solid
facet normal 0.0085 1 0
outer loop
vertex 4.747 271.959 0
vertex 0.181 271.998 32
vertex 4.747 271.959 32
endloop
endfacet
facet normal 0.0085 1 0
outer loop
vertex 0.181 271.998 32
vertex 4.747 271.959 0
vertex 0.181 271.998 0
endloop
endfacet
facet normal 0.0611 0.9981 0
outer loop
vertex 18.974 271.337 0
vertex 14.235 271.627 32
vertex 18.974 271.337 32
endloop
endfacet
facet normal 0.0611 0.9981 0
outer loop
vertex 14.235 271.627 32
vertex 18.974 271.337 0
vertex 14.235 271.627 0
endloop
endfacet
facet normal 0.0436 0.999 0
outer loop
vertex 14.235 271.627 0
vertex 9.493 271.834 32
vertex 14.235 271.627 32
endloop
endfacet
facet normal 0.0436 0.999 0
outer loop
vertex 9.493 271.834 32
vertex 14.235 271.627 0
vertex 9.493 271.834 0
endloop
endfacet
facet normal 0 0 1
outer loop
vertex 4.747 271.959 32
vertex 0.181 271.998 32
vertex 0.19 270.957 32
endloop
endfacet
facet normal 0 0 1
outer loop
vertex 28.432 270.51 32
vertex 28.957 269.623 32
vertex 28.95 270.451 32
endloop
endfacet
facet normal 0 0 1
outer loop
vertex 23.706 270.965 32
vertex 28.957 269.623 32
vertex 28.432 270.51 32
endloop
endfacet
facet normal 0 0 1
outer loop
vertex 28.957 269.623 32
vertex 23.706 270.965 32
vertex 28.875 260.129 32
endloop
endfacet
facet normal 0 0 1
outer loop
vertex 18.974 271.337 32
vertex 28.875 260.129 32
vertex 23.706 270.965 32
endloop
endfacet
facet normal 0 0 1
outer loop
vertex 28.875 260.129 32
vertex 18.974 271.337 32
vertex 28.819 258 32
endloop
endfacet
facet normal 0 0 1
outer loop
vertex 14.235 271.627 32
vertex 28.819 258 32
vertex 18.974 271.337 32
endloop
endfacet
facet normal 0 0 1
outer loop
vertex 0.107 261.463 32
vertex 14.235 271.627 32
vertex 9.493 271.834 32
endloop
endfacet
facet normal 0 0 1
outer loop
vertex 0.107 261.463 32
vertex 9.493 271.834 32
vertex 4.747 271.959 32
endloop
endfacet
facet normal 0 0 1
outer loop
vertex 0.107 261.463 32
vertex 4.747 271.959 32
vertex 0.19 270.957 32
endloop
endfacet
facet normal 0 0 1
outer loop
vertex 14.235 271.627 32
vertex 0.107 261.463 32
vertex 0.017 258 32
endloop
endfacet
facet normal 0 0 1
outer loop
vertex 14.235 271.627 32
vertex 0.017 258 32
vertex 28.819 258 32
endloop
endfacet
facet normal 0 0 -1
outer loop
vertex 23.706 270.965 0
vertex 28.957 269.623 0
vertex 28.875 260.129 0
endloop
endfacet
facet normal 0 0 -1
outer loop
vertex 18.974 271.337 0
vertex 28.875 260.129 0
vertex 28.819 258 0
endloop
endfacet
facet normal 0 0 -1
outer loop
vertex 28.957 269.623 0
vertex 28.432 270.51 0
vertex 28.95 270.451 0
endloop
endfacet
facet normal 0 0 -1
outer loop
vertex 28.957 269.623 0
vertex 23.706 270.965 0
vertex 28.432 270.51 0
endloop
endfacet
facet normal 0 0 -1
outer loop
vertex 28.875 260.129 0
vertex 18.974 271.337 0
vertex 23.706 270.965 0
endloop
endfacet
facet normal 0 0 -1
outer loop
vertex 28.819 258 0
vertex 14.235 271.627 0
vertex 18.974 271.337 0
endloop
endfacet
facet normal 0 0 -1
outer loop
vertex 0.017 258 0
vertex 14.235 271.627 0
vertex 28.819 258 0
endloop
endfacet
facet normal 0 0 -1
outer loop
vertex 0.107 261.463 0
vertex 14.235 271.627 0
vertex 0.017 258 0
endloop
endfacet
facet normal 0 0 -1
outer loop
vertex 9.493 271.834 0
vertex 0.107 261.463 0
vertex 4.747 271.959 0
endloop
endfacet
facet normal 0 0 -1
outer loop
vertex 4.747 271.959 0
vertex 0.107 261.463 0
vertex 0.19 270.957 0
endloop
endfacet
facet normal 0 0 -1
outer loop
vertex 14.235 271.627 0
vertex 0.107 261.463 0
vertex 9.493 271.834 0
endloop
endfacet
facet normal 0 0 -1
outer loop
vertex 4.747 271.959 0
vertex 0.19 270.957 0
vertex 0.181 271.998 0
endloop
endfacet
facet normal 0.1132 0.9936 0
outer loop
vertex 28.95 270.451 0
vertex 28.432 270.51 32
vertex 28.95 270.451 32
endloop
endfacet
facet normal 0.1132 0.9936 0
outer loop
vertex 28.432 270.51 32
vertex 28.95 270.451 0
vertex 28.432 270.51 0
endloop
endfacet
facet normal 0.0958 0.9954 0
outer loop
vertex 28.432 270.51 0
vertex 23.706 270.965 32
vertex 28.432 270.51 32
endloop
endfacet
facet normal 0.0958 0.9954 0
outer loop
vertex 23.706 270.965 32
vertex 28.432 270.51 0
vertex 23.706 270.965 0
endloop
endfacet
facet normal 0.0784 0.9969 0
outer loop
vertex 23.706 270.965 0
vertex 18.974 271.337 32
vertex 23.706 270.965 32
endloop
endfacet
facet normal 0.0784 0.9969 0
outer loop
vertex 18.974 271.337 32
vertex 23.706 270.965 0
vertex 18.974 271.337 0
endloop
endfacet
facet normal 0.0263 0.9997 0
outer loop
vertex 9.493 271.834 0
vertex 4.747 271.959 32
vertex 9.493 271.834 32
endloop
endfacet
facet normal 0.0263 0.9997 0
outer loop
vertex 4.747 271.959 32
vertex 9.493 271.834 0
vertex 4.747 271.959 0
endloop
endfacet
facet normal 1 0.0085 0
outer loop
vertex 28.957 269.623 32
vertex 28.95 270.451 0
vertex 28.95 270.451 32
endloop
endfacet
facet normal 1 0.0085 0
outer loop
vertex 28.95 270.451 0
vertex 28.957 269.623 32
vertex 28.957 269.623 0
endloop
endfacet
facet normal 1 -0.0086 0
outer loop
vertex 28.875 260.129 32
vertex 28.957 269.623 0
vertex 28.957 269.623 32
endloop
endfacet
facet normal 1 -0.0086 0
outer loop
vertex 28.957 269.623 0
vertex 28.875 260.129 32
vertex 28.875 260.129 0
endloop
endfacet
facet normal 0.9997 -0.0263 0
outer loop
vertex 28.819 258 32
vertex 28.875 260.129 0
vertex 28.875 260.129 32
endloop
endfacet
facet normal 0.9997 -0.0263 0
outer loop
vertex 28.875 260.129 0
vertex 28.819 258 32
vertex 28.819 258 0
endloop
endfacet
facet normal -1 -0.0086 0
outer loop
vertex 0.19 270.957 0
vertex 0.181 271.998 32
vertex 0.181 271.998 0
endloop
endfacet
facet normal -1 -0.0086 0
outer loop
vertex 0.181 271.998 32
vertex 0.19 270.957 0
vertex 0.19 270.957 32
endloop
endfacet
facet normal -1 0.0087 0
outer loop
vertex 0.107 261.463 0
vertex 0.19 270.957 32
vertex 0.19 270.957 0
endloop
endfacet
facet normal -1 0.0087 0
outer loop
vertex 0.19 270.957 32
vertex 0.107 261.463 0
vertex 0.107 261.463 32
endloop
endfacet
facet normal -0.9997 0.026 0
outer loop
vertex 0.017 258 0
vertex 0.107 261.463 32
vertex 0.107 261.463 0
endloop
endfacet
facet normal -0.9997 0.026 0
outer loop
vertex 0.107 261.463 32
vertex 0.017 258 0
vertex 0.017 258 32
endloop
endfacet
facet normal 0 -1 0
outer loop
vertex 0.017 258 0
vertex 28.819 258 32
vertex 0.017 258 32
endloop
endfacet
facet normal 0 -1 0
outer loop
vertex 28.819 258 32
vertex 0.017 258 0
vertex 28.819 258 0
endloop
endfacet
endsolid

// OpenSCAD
// file: Grouser.scad
module cycloid(x, y, r){
    translate([x/2+(x*r^2-y*(16*r^2*(x^2+y^2)-(x^2+y^2-r^2)^2)^0.5)/(x^2+y^2)/2, y/2+(y/2*r^2-(4*r^2*(x^2+y^2/2)-((x^2-r^2)/2+y^2)^2)^0.5)/(x^2+y^2), 0]){
        cylinder(32, r=2*r, $fn=360);
    }
}
module grouser(x2=45*tan(360/65), x1=0, r=272, w=0){
    difference(){
        intersection(){
            cylinder(32, r=r, $fn=360);
            cycloid(x2, 258-213*w, r);
        }
        cycloid(x1, 258-213*w, r);
        if(w){
            cylinder(32, r=4); 
        }else{
            translate([-272, -272, 0]){
                cube([544, 530, 32]);
            } 
        }
    }
}
// main file
use<Grouser.scad>;
difference(){
    grouser(25);
    translate([-30, 0, 0]){
        cube([30, 272, 32]);
    }
}
